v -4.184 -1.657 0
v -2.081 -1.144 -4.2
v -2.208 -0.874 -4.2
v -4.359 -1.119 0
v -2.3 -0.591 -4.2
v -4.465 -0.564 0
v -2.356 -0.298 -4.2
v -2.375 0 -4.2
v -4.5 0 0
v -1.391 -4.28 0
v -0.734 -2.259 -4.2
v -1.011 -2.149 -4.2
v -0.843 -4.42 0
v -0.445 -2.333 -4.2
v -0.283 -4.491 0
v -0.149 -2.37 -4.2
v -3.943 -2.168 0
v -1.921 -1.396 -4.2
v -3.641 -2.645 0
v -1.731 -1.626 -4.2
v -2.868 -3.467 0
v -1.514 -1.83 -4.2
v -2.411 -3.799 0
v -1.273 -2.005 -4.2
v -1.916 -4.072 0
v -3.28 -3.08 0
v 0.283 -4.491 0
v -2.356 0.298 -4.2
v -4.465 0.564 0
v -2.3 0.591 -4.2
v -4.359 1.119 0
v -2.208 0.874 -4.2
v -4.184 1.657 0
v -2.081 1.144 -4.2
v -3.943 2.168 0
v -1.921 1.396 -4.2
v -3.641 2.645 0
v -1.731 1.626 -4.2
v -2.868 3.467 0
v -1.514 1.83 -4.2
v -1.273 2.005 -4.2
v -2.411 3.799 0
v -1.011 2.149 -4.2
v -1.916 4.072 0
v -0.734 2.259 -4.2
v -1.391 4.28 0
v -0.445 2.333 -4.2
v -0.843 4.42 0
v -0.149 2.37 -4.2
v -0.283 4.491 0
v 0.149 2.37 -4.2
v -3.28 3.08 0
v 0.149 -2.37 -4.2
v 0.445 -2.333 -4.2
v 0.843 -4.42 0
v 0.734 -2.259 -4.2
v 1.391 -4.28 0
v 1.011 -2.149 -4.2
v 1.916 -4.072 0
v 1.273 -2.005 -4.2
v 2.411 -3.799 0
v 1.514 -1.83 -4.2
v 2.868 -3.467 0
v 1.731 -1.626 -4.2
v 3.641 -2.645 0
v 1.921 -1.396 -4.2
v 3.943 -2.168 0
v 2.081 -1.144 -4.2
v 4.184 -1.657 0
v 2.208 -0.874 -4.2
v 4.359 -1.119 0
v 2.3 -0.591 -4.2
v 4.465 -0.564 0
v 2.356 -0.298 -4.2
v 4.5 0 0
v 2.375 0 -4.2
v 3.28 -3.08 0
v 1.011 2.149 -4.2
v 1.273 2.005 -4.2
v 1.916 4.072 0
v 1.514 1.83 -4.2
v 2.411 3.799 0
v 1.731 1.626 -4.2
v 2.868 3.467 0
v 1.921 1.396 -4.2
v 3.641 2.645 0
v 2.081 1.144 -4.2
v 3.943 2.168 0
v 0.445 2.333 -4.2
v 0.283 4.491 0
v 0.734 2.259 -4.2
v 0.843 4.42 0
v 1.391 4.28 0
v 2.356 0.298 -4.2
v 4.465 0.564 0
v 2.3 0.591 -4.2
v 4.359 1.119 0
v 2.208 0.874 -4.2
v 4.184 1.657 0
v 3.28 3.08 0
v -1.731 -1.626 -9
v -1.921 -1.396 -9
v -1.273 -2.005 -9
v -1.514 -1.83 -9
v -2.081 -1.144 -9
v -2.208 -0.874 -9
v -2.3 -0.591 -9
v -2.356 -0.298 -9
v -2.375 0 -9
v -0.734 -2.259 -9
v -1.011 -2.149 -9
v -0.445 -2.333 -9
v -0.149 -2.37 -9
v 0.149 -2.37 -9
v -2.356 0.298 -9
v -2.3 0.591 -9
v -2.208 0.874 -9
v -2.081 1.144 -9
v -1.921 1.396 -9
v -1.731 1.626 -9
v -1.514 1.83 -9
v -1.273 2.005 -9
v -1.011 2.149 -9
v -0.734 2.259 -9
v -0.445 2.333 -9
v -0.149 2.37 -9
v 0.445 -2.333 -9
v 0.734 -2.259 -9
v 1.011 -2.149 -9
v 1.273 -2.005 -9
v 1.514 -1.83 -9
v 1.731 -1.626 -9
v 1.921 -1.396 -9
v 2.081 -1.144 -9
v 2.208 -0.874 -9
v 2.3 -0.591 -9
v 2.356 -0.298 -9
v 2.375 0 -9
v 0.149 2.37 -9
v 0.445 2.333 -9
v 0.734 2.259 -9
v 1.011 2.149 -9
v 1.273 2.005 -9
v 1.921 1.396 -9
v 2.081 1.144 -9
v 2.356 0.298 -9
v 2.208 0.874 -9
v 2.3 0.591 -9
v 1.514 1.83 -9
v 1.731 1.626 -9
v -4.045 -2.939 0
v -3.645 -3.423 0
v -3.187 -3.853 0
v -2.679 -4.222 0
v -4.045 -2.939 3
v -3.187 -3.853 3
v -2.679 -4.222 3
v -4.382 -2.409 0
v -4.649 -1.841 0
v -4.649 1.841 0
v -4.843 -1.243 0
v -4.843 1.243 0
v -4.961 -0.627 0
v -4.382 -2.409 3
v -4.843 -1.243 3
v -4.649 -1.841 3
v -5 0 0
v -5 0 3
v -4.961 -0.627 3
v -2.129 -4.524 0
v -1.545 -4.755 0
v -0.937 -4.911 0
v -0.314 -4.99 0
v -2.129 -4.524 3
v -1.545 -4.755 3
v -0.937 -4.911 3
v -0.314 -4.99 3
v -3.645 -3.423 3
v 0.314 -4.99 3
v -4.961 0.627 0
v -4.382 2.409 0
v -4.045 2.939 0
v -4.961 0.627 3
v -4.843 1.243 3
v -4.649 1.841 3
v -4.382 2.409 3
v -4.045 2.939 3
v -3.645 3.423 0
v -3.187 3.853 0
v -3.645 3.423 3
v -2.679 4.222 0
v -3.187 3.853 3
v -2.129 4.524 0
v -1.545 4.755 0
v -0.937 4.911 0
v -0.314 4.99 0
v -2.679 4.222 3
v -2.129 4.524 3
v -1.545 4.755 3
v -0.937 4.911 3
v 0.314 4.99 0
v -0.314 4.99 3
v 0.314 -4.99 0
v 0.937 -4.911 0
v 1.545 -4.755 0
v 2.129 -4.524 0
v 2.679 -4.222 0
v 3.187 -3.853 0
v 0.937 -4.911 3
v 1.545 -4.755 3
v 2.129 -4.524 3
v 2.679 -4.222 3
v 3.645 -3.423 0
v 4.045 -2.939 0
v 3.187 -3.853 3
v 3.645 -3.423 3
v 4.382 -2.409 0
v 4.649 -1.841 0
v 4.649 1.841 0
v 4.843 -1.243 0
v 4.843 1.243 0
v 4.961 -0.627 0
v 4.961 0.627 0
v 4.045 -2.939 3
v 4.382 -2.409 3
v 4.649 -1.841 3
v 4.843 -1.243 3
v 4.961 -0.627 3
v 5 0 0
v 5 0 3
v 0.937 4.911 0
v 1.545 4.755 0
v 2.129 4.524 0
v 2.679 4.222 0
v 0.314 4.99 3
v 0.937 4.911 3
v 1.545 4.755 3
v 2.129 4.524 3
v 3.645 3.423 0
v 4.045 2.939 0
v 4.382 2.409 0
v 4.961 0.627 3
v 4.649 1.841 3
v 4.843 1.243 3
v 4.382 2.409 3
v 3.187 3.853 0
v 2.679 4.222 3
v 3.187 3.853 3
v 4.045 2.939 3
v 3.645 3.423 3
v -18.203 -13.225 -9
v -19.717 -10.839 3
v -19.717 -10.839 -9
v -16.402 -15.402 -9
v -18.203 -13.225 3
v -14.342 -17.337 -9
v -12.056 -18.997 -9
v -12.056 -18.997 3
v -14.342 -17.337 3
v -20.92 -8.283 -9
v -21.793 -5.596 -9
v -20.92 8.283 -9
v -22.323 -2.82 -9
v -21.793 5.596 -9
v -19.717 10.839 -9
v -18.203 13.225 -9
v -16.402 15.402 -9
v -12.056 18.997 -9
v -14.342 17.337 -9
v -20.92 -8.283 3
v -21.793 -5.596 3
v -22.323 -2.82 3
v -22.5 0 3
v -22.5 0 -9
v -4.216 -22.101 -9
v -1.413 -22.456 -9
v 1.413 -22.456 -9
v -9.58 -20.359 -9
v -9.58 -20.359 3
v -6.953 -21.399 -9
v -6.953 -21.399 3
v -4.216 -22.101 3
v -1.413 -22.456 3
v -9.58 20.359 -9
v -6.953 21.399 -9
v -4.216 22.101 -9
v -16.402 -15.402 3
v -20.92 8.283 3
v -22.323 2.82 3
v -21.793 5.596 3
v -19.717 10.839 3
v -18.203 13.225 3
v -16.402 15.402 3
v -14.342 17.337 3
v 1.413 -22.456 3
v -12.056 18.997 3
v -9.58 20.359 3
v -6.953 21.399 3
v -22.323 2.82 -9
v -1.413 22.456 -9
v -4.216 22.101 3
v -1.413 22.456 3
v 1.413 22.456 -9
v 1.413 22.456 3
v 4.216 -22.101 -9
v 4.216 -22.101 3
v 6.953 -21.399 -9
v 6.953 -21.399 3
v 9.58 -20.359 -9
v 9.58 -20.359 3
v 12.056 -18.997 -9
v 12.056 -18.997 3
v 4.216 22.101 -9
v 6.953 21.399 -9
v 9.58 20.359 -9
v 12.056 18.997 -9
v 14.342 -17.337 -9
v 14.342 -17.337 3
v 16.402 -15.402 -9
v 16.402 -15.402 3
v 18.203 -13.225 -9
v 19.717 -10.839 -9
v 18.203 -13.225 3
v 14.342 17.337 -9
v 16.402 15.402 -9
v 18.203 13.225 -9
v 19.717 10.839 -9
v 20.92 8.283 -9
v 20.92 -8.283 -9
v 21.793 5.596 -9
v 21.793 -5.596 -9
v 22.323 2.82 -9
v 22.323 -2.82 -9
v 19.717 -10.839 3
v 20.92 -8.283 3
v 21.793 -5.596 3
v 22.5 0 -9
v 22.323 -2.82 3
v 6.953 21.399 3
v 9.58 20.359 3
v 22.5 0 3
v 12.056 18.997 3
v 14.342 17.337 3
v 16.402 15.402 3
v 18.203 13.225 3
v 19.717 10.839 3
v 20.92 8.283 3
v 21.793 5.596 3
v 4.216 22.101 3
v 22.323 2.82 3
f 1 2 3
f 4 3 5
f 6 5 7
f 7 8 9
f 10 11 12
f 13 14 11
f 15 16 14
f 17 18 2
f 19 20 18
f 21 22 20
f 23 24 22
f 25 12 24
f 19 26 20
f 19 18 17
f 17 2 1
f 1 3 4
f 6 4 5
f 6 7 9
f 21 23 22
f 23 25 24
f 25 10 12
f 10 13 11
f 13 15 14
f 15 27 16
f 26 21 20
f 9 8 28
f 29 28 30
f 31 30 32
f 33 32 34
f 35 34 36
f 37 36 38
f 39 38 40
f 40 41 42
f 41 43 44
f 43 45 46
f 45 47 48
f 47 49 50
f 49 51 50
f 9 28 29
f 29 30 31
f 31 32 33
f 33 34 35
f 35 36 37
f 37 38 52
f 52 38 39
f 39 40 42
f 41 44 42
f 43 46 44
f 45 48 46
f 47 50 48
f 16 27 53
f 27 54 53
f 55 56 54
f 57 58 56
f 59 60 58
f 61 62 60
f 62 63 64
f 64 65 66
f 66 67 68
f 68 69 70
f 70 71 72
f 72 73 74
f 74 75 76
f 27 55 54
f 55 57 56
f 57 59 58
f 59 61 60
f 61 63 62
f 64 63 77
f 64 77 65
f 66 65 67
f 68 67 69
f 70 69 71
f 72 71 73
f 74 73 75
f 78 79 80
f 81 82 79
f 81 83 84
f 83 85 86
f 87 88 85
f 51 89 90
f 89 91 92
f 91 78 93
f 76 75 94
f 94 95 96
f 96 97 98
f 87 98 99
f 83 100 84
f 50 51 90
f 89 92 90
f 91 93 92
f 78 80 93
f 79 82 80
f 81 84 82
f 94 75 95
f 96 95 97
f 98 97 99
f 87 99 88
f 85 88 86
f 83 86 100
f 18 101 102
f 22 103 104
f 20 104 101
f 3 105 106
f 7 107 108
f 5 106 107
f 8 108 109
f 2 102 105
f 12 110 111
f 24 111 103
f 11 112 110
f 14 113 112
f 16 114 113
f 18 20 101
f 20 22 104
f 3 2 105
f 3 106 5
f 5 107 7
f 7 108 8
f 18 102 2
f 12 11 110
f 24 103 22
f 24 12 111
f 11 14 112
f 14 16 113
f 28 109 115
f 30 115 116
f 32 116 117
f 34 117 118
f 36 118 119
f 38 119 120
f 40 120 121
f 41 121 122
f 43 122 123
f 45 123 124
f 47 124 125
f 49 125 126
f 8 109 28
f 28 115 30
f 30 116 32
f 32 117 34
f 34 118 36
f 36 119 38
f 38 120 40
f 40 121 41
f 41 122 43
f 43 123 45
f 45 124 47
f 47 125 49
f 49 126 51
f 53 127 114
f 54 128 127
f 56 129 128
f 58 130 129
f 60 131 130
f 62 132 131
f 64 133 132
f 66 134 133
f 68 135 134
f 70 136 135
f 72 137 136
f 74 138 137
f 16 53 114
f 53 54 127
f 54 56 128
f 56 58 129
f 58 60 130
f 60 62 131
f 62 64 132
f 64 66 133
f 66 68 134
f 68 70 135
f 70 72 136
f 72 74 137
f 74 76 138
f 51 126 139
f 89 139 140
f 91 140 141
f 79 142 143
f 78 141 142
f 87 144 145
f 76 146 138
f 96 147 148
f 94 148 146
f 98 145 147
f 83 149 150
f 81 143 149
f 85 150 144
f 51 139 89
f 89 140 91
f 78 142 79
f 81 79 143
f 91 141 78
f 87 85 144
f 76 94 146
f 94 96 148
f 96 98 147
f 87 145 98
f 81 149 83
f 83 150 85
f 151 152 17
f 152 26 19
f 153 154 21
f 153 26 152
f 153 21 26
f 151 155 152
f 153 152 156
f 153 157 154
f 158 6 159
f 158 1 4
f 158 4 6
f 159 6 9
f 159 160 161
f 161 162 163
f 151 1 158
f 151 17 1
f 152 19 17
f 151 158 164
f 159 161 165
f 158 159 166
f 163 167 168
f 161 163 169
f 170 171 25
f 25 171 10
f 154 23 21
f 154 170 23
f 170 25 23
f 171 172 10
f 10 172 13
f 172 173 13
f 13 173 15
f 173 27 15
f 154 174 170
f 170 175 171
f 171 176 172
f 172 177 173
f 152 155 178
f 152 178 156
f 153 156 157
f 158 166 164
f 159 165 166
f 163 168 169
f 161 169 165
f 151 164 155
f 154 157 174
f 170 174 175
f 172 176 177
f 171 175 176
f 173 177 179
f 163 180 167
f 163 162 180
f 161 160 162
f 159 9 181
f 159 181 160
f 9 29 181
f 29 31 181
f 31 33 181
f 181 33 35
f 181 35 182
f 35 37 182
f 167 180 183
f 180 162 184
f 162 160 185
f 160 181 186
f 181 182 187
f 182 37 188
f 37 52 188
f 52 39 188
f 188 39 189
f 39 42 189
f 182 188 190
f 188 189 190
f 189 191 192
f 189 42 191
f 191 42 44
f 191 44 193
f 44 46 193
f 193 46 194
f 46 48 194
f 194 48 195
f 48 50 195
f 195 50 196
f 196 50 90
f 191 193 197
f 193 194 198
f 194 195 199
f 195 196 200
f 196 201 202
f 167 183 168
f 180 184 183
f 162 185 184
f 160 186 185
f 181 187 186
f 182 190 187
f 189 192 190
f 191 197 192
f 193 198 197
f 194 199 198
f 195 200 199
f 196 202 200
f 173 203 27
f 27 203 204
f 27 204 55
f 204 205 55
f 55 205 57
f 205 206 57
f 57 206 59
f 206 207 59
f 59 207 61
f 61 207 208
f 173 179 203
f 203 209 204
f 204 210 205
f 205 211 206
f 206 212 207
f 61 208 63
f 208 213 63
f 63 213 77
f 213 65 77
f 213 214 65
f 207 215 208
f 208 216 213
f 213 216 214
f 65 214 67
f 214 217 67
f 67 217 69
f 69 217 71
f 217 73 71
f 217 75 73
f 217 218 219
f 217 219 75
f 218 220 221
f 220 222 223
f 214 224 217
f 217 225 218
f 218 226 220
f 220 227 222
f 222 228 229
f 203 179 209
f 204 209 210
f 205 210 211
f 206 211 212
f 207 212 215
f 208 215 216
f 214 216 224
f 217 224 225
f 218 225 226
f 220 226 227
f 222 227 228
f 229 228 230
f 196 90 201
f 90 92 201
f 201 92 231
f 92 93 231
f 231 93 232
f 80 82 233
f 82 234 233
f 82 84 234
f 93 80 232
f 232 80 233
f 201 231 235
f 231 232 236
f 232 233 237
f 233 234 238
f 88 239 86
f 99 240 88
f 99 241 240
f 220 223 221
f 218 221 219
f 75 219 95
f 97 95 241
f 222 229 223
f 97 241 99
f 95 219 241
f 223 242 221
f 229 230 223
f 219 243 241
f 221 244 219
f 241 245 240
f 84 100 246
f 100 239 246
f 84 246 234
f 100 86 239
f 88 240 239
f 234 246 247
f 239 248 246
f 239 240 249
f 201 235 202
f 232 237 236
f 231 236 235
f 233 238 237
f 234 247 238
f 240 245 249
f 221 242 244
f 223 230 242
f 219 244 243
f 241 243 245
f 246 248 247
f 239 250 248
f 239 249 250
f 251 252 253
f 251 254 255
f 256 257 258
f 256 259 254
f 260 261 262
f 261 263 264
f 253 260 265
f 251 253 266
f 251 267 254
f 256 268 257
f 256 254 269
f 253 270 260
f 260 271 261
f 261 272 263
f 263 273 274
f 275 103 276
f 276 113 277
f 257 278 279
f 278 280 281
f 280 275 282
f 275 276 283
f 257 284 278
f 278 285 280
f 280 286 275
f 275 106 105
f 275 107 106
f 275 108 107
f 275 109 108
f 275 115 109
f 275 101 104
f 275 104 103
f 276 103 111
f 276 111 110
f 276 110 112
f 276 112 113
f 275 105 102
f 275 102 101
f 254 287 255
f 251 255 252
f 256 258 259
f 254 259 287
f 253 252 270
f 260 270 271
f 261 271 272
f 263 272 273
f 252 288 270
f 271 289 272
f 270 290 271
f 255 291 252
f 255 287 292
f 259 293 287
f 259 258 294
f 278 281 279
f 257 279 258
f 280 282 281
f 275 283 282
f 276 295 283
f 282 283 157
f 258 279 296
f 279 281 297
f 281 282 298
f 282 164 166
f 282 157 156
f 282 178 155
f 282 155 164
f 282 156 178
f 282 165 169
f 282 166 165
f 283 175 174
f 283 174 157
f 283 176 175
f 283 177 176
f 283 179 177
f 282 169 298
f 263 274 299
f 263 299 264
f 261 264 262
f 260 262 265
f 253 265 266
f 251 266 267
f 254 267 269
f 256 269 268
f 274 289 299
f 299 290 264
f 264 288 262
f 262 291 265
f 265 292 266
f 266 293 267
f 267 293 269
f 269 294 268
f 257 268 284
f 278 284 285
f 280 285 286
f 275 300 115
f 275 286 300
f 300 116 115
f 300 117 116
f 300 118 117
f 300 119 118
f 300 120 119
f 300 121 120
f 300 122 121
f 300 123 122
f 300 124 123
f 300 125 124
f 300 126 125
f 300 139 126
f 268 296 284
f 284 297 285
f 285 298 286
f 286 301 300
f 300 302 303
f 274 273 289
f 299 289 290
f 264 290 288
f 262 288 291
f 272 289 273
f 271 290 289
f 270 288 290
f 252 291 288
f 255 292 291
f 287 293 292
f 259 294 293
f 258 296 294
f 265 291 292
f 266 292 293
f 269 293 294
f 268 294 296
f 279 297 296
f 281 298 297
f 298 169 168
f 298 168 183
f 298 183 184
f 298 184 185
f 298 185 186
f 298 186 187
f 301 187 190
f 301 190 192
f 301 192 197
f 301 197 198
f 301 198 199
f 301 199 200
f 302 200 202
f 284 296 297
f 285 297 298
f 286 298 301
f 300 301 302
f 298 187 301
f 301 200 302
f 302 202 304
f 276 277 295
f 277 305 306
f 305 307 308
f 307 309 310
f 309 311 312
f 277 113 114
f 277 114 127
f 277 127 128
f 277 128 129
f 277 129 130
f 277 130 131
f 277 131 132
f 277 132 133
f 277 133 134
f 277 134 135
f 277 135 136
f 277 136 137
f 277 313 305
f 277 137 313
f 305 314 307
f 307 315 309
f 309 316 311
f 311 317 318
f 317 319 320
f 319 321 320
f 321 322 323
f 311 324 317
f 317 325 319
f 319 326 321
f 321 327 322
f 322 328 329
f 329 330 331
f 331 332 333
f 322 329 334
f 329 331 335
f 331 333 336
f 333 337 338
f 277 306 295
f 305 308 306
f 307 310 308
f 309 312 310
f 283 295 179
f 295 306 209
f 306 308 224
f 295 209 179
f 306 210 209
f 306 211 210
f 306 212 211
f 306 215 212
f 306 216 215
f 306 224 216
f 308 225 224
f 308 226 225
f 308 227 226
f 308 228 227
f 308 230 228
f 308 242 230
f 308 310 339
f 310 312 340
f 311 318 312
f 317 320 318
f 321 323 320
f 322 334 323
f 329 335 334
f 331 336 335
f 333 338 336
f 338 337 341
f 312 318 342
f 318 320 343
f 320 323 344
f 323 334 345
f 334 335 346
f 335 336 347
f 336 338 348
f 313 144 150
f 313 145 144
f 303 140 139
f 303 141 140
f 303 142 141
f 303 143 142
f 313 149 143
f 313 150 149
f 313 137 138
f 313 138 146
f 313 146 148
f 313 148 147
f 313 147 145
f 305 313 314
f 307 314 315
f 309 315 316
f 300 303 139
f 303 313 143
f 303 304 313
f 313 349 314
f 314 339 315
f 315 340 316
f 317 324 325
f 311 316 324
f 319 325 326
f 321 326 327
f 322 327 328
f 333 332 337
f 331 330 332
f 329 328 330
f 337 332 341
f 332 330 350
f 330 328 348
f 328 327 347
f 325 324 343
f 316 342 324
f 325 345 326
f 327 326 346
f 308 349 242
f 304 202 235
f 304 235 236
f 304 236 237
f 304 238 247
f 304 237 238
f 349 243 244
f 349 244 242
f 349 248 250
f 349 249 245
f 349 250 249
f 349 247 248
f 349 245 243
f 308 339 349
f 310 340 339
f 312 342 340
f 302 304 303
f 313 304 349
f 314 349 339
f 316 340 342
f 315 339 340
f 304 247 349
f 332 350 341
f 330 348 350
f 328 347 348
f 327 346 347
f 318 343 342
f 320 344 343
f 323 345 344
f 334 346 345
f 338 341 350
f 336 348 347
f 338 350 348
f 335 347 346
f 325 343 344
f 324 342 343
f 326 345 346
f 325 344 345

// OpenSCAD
$fn = 50;

difference() {
	union() {
		translate(v = [0, 0, -9.0]) {
			cylinder(h = 12, r = 22.5);
		}
	}
	union() {
		translate(v = [0, 0, 0]) {
			rotate(a = [0, 0, 0]) {
				difference() {
					union() {
						translate(v = [0, 0, -12.0]) {
							cylinder(h = 12, r = 2.25);
						}
						translate(v = [0, 0, -4.2]) {
							cylinder(h = 4.2, r1 = 2.375, r2 = 4.5);
						}
						translate(v = [0, 0, -12.0]) {
							cylinder(h = 12, r = 2.375);
						}
						translate(v = [0, 0, -12.0]) {
							cylinder(h = 12, r = 2.25);
						}
					}
					union();
				}
			}
		}
		#cylinder(h = 3, r = 5.0);
	}
}
